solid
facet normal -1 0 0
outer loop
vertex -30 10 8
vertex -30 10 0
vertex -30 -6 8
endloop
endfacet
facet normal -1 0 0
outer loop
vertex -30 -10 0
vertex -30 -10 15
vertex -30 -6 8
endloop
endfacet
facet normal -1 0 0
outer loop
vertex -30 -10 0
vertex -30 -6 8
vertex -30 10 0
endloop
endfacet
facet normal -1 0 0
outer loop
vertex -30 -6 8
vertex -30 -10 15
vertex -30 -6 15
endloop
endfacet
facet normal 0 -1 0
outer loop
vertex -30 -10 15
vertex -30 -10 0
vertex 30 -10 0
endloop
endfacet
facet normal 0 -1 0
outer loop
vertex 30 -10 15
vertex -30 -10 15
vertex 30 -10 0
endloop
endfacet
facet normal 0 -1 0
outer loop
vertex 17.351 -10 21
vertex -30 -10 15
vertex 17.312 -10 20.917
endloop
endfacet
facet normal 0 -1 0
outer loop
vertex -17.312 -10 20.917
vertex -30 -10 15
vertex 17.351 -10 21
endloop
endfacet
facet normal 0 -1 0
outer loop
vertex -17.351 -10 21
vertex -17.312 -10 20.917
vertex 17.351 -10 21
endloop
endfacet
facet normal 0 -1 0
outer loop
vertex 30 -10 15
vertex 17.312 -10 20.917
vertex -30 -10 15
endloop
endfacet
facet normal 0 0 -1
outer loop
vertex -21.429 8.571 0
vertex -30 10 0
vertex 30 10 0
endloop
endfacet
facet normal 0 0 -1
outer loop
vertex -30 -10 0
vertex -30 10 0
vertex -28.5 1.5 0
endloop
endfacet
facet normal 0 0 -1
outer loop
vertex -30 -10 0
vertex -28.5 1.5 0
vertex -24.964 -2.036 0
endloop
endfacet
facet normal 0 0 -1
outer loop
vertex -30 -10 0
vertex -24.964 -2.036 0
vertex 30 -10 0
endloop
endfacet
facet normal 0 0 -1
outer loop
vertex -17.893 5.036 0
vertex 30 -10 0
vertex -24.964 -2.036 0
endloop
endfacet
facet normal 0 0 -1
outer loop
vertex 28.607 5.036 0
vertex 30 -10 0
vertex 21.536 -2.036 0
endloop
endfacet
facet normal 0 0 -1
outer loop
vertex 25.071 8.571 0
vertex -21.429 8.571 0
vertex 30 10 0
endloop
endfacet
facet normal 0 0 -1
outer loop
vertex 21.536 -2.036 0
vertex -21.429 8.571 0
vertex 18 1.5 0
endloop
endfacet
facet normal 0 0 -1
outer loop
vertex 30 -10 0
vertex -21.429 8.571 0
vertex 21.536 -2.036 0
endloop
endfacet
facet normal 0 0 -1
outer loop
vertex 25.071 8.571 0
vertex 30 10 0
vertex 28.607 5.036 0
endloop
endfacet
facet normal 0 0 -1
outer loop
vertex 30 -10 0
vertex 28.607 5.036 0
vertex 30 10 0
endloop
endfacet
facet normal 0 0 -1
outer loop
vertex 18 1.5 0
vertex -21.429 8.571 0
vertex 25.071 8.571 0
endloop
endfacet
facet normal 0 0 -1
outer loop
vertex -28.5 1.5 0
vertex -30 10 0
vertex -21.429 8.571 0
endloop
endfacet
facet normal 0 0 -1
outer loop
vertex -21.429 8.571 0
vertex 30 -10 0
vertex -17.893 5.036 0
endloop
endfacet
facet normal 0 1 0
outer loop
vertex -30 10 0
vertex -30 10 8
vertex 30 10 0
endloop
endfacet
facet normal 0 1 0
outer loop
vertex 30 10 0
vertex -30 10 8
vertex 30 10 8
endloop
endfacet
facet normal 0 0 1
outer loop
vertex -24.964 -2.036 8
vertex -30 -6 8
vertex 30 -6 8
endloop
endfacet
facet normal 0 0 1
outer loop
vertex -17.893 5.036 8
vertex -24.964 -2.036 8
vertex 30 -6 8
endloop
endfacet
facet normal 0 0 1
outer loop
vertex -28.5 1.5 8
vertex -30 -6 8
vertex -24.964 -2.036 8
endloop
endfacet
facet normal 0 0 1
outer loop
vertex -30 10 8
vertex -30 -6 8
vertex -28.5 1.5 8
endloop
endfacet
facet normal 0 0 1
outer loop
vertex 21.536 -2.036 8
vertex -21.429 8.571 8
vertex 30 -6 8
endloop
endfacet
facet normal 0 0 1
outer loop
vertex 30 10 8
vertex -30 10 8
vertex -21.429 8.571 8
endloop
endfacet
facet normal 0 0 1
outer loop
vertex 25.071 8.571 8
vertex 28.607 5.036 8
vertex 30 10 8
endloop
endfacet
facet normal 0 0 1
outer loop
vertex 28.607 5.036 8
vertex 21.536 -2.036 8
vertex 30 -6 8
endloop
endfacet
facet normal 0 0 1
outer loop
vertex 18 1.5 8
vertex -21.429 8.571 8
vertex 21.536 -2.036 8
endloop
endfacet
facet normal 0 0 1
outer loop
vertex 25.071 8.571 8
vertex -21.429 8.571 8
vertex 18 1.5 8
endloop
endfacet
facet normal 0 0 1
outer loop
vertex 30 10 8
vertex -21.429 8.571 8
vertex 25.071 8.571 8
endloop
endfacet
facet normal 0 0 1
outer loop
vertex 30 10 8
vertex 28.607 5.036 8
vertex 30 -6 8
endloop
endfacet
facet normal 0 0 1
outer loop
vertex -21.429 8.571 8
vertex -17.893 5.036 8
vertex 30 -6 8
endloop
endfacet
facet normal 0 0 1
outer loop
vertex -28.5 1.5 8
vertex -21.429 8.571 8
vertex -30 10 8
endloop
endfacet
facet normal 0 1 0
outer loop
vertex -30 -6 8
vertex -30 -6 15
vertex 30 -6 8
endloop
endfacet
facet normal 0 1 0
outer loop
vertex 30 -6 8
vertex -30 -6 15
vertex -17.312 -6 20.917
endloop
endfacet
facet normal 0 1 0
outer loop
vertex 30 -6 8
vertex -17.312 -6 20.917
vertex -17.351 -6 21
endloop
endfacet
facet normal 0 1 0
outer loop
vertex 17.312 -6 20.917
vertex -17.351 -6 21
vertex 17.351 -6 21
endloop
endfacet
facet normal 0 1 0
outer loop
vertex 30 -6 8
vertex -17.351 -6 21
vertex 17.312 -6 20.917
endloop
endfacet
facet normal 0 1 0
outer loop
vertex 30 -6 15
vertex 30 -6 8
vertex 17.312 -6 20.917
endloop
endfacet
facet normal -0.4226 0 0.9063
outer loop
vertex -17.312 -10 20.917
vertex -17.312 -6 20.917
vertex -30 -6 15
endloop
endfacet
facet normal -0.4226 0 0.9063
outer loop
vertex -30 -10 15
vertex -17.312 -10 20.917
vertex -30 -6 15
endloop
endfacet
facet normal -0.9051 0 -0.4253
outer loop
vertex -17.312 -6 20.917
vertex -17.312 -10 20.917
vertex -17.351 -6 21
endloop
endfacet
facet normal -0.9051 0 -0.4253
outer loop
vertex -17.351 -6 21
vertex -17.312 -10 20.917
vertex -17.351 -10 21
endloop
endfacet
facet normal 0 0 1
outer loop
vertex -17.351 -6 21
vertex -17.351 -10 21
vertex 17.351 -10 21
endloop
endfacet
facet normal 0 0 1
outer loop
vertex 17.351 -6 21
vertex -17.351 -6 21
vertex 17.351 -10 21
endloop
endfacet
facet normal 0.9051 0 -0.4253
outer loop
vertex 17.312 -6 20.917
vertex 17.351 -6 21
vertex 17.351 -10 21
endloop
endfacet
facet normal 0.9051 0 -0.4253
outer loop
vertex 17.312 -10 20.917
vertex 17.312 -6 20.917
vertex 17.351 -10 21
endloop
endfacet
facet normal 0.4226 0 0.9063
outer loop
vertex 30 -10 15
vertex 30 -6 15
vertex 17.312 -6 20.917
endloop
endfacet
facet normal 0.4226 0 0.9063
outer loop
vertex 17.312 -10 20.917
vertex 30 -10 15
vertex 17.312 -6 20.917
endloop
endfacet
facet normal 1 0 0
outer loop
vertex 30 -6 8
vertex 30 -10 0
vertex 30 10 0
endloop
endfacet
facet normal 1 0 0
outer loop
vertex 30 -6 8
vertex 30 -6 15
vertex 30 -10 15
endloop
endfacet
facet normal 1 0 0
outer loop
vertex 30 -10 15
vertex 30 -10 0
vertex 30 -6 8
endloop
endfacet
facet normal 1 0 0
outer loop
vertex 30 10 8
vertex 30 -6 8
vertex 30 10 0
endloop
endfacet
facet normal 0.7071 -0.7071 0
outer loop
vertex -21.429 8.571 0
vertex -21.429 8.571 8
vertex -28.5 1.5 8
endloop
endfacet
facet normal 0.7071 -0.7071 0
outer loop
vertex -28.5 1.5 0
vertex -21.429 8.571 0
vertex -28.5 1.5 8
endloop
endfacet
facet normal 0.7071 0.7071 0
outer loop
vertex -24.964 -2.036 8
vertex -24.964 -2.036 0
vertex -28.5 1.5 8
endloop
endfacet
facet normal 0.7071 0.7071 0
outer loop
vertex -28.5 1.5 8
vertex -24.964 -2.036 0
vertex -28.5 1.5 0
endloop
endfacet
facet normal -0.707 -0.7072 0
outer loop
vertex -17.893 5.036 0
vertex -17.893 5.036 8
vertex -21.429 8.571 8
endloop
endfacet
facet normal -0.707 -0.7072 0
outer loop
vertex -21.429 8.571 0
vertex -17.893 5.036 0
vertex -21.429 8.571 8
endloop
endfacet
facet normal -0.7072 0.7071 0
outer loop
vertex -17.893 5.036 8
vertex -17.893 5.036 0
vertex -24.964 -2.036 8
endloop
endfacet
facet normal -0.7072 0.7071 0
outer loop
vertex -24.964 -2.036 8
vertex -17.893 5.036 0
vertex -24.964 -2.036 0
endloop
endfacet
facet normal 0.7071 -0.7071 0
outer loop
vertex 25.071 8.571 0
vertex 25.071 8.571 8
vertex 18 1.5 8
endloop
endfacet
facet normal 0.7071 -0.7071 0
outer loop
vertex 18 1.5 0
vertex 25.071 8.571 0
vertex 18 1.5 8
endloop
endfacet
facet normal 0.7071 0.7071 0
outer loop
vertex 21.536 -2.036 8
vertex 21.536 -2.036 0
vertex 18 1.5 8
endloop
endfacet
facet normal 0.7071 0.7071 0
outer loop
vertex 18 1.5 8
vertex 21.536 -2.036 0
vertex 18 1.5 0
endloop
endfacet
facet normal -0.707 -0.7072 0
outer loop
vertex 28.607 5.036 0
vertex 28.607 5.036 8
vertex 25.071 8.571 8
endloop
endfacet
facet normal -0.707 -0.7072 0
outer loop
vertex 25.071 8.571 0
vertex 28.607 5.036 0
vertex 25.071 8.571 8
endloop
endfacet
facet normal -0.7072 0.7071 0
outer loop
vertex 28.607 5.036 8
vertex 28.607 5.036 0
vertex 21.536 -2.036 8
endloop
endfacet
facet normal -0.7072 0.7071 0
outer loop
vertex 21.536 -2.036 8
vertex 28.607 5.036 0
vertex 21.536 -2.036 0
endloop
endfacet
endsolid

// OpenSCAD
translate([-30,-10,0]) {
	difference() {
		cube([60,20,8]);
		translate([1.5,11.5,-4]) rotate(-45) cube([5,10,16]);
		translate([48,11.5,-4]) rotate(-45) cube([5,10,16]);
	}

	translate([0,0,8]) {
		difference() {
			cube([60,4,13]);
			translate([0,-4,0]) {
				translate([0,0,7]) rotate(a=[0,-25,0]) cube(14);
				translate([60,14,7]) rotate(a=[0,-25,180]) cube(14);
			}
		}
	}
}
